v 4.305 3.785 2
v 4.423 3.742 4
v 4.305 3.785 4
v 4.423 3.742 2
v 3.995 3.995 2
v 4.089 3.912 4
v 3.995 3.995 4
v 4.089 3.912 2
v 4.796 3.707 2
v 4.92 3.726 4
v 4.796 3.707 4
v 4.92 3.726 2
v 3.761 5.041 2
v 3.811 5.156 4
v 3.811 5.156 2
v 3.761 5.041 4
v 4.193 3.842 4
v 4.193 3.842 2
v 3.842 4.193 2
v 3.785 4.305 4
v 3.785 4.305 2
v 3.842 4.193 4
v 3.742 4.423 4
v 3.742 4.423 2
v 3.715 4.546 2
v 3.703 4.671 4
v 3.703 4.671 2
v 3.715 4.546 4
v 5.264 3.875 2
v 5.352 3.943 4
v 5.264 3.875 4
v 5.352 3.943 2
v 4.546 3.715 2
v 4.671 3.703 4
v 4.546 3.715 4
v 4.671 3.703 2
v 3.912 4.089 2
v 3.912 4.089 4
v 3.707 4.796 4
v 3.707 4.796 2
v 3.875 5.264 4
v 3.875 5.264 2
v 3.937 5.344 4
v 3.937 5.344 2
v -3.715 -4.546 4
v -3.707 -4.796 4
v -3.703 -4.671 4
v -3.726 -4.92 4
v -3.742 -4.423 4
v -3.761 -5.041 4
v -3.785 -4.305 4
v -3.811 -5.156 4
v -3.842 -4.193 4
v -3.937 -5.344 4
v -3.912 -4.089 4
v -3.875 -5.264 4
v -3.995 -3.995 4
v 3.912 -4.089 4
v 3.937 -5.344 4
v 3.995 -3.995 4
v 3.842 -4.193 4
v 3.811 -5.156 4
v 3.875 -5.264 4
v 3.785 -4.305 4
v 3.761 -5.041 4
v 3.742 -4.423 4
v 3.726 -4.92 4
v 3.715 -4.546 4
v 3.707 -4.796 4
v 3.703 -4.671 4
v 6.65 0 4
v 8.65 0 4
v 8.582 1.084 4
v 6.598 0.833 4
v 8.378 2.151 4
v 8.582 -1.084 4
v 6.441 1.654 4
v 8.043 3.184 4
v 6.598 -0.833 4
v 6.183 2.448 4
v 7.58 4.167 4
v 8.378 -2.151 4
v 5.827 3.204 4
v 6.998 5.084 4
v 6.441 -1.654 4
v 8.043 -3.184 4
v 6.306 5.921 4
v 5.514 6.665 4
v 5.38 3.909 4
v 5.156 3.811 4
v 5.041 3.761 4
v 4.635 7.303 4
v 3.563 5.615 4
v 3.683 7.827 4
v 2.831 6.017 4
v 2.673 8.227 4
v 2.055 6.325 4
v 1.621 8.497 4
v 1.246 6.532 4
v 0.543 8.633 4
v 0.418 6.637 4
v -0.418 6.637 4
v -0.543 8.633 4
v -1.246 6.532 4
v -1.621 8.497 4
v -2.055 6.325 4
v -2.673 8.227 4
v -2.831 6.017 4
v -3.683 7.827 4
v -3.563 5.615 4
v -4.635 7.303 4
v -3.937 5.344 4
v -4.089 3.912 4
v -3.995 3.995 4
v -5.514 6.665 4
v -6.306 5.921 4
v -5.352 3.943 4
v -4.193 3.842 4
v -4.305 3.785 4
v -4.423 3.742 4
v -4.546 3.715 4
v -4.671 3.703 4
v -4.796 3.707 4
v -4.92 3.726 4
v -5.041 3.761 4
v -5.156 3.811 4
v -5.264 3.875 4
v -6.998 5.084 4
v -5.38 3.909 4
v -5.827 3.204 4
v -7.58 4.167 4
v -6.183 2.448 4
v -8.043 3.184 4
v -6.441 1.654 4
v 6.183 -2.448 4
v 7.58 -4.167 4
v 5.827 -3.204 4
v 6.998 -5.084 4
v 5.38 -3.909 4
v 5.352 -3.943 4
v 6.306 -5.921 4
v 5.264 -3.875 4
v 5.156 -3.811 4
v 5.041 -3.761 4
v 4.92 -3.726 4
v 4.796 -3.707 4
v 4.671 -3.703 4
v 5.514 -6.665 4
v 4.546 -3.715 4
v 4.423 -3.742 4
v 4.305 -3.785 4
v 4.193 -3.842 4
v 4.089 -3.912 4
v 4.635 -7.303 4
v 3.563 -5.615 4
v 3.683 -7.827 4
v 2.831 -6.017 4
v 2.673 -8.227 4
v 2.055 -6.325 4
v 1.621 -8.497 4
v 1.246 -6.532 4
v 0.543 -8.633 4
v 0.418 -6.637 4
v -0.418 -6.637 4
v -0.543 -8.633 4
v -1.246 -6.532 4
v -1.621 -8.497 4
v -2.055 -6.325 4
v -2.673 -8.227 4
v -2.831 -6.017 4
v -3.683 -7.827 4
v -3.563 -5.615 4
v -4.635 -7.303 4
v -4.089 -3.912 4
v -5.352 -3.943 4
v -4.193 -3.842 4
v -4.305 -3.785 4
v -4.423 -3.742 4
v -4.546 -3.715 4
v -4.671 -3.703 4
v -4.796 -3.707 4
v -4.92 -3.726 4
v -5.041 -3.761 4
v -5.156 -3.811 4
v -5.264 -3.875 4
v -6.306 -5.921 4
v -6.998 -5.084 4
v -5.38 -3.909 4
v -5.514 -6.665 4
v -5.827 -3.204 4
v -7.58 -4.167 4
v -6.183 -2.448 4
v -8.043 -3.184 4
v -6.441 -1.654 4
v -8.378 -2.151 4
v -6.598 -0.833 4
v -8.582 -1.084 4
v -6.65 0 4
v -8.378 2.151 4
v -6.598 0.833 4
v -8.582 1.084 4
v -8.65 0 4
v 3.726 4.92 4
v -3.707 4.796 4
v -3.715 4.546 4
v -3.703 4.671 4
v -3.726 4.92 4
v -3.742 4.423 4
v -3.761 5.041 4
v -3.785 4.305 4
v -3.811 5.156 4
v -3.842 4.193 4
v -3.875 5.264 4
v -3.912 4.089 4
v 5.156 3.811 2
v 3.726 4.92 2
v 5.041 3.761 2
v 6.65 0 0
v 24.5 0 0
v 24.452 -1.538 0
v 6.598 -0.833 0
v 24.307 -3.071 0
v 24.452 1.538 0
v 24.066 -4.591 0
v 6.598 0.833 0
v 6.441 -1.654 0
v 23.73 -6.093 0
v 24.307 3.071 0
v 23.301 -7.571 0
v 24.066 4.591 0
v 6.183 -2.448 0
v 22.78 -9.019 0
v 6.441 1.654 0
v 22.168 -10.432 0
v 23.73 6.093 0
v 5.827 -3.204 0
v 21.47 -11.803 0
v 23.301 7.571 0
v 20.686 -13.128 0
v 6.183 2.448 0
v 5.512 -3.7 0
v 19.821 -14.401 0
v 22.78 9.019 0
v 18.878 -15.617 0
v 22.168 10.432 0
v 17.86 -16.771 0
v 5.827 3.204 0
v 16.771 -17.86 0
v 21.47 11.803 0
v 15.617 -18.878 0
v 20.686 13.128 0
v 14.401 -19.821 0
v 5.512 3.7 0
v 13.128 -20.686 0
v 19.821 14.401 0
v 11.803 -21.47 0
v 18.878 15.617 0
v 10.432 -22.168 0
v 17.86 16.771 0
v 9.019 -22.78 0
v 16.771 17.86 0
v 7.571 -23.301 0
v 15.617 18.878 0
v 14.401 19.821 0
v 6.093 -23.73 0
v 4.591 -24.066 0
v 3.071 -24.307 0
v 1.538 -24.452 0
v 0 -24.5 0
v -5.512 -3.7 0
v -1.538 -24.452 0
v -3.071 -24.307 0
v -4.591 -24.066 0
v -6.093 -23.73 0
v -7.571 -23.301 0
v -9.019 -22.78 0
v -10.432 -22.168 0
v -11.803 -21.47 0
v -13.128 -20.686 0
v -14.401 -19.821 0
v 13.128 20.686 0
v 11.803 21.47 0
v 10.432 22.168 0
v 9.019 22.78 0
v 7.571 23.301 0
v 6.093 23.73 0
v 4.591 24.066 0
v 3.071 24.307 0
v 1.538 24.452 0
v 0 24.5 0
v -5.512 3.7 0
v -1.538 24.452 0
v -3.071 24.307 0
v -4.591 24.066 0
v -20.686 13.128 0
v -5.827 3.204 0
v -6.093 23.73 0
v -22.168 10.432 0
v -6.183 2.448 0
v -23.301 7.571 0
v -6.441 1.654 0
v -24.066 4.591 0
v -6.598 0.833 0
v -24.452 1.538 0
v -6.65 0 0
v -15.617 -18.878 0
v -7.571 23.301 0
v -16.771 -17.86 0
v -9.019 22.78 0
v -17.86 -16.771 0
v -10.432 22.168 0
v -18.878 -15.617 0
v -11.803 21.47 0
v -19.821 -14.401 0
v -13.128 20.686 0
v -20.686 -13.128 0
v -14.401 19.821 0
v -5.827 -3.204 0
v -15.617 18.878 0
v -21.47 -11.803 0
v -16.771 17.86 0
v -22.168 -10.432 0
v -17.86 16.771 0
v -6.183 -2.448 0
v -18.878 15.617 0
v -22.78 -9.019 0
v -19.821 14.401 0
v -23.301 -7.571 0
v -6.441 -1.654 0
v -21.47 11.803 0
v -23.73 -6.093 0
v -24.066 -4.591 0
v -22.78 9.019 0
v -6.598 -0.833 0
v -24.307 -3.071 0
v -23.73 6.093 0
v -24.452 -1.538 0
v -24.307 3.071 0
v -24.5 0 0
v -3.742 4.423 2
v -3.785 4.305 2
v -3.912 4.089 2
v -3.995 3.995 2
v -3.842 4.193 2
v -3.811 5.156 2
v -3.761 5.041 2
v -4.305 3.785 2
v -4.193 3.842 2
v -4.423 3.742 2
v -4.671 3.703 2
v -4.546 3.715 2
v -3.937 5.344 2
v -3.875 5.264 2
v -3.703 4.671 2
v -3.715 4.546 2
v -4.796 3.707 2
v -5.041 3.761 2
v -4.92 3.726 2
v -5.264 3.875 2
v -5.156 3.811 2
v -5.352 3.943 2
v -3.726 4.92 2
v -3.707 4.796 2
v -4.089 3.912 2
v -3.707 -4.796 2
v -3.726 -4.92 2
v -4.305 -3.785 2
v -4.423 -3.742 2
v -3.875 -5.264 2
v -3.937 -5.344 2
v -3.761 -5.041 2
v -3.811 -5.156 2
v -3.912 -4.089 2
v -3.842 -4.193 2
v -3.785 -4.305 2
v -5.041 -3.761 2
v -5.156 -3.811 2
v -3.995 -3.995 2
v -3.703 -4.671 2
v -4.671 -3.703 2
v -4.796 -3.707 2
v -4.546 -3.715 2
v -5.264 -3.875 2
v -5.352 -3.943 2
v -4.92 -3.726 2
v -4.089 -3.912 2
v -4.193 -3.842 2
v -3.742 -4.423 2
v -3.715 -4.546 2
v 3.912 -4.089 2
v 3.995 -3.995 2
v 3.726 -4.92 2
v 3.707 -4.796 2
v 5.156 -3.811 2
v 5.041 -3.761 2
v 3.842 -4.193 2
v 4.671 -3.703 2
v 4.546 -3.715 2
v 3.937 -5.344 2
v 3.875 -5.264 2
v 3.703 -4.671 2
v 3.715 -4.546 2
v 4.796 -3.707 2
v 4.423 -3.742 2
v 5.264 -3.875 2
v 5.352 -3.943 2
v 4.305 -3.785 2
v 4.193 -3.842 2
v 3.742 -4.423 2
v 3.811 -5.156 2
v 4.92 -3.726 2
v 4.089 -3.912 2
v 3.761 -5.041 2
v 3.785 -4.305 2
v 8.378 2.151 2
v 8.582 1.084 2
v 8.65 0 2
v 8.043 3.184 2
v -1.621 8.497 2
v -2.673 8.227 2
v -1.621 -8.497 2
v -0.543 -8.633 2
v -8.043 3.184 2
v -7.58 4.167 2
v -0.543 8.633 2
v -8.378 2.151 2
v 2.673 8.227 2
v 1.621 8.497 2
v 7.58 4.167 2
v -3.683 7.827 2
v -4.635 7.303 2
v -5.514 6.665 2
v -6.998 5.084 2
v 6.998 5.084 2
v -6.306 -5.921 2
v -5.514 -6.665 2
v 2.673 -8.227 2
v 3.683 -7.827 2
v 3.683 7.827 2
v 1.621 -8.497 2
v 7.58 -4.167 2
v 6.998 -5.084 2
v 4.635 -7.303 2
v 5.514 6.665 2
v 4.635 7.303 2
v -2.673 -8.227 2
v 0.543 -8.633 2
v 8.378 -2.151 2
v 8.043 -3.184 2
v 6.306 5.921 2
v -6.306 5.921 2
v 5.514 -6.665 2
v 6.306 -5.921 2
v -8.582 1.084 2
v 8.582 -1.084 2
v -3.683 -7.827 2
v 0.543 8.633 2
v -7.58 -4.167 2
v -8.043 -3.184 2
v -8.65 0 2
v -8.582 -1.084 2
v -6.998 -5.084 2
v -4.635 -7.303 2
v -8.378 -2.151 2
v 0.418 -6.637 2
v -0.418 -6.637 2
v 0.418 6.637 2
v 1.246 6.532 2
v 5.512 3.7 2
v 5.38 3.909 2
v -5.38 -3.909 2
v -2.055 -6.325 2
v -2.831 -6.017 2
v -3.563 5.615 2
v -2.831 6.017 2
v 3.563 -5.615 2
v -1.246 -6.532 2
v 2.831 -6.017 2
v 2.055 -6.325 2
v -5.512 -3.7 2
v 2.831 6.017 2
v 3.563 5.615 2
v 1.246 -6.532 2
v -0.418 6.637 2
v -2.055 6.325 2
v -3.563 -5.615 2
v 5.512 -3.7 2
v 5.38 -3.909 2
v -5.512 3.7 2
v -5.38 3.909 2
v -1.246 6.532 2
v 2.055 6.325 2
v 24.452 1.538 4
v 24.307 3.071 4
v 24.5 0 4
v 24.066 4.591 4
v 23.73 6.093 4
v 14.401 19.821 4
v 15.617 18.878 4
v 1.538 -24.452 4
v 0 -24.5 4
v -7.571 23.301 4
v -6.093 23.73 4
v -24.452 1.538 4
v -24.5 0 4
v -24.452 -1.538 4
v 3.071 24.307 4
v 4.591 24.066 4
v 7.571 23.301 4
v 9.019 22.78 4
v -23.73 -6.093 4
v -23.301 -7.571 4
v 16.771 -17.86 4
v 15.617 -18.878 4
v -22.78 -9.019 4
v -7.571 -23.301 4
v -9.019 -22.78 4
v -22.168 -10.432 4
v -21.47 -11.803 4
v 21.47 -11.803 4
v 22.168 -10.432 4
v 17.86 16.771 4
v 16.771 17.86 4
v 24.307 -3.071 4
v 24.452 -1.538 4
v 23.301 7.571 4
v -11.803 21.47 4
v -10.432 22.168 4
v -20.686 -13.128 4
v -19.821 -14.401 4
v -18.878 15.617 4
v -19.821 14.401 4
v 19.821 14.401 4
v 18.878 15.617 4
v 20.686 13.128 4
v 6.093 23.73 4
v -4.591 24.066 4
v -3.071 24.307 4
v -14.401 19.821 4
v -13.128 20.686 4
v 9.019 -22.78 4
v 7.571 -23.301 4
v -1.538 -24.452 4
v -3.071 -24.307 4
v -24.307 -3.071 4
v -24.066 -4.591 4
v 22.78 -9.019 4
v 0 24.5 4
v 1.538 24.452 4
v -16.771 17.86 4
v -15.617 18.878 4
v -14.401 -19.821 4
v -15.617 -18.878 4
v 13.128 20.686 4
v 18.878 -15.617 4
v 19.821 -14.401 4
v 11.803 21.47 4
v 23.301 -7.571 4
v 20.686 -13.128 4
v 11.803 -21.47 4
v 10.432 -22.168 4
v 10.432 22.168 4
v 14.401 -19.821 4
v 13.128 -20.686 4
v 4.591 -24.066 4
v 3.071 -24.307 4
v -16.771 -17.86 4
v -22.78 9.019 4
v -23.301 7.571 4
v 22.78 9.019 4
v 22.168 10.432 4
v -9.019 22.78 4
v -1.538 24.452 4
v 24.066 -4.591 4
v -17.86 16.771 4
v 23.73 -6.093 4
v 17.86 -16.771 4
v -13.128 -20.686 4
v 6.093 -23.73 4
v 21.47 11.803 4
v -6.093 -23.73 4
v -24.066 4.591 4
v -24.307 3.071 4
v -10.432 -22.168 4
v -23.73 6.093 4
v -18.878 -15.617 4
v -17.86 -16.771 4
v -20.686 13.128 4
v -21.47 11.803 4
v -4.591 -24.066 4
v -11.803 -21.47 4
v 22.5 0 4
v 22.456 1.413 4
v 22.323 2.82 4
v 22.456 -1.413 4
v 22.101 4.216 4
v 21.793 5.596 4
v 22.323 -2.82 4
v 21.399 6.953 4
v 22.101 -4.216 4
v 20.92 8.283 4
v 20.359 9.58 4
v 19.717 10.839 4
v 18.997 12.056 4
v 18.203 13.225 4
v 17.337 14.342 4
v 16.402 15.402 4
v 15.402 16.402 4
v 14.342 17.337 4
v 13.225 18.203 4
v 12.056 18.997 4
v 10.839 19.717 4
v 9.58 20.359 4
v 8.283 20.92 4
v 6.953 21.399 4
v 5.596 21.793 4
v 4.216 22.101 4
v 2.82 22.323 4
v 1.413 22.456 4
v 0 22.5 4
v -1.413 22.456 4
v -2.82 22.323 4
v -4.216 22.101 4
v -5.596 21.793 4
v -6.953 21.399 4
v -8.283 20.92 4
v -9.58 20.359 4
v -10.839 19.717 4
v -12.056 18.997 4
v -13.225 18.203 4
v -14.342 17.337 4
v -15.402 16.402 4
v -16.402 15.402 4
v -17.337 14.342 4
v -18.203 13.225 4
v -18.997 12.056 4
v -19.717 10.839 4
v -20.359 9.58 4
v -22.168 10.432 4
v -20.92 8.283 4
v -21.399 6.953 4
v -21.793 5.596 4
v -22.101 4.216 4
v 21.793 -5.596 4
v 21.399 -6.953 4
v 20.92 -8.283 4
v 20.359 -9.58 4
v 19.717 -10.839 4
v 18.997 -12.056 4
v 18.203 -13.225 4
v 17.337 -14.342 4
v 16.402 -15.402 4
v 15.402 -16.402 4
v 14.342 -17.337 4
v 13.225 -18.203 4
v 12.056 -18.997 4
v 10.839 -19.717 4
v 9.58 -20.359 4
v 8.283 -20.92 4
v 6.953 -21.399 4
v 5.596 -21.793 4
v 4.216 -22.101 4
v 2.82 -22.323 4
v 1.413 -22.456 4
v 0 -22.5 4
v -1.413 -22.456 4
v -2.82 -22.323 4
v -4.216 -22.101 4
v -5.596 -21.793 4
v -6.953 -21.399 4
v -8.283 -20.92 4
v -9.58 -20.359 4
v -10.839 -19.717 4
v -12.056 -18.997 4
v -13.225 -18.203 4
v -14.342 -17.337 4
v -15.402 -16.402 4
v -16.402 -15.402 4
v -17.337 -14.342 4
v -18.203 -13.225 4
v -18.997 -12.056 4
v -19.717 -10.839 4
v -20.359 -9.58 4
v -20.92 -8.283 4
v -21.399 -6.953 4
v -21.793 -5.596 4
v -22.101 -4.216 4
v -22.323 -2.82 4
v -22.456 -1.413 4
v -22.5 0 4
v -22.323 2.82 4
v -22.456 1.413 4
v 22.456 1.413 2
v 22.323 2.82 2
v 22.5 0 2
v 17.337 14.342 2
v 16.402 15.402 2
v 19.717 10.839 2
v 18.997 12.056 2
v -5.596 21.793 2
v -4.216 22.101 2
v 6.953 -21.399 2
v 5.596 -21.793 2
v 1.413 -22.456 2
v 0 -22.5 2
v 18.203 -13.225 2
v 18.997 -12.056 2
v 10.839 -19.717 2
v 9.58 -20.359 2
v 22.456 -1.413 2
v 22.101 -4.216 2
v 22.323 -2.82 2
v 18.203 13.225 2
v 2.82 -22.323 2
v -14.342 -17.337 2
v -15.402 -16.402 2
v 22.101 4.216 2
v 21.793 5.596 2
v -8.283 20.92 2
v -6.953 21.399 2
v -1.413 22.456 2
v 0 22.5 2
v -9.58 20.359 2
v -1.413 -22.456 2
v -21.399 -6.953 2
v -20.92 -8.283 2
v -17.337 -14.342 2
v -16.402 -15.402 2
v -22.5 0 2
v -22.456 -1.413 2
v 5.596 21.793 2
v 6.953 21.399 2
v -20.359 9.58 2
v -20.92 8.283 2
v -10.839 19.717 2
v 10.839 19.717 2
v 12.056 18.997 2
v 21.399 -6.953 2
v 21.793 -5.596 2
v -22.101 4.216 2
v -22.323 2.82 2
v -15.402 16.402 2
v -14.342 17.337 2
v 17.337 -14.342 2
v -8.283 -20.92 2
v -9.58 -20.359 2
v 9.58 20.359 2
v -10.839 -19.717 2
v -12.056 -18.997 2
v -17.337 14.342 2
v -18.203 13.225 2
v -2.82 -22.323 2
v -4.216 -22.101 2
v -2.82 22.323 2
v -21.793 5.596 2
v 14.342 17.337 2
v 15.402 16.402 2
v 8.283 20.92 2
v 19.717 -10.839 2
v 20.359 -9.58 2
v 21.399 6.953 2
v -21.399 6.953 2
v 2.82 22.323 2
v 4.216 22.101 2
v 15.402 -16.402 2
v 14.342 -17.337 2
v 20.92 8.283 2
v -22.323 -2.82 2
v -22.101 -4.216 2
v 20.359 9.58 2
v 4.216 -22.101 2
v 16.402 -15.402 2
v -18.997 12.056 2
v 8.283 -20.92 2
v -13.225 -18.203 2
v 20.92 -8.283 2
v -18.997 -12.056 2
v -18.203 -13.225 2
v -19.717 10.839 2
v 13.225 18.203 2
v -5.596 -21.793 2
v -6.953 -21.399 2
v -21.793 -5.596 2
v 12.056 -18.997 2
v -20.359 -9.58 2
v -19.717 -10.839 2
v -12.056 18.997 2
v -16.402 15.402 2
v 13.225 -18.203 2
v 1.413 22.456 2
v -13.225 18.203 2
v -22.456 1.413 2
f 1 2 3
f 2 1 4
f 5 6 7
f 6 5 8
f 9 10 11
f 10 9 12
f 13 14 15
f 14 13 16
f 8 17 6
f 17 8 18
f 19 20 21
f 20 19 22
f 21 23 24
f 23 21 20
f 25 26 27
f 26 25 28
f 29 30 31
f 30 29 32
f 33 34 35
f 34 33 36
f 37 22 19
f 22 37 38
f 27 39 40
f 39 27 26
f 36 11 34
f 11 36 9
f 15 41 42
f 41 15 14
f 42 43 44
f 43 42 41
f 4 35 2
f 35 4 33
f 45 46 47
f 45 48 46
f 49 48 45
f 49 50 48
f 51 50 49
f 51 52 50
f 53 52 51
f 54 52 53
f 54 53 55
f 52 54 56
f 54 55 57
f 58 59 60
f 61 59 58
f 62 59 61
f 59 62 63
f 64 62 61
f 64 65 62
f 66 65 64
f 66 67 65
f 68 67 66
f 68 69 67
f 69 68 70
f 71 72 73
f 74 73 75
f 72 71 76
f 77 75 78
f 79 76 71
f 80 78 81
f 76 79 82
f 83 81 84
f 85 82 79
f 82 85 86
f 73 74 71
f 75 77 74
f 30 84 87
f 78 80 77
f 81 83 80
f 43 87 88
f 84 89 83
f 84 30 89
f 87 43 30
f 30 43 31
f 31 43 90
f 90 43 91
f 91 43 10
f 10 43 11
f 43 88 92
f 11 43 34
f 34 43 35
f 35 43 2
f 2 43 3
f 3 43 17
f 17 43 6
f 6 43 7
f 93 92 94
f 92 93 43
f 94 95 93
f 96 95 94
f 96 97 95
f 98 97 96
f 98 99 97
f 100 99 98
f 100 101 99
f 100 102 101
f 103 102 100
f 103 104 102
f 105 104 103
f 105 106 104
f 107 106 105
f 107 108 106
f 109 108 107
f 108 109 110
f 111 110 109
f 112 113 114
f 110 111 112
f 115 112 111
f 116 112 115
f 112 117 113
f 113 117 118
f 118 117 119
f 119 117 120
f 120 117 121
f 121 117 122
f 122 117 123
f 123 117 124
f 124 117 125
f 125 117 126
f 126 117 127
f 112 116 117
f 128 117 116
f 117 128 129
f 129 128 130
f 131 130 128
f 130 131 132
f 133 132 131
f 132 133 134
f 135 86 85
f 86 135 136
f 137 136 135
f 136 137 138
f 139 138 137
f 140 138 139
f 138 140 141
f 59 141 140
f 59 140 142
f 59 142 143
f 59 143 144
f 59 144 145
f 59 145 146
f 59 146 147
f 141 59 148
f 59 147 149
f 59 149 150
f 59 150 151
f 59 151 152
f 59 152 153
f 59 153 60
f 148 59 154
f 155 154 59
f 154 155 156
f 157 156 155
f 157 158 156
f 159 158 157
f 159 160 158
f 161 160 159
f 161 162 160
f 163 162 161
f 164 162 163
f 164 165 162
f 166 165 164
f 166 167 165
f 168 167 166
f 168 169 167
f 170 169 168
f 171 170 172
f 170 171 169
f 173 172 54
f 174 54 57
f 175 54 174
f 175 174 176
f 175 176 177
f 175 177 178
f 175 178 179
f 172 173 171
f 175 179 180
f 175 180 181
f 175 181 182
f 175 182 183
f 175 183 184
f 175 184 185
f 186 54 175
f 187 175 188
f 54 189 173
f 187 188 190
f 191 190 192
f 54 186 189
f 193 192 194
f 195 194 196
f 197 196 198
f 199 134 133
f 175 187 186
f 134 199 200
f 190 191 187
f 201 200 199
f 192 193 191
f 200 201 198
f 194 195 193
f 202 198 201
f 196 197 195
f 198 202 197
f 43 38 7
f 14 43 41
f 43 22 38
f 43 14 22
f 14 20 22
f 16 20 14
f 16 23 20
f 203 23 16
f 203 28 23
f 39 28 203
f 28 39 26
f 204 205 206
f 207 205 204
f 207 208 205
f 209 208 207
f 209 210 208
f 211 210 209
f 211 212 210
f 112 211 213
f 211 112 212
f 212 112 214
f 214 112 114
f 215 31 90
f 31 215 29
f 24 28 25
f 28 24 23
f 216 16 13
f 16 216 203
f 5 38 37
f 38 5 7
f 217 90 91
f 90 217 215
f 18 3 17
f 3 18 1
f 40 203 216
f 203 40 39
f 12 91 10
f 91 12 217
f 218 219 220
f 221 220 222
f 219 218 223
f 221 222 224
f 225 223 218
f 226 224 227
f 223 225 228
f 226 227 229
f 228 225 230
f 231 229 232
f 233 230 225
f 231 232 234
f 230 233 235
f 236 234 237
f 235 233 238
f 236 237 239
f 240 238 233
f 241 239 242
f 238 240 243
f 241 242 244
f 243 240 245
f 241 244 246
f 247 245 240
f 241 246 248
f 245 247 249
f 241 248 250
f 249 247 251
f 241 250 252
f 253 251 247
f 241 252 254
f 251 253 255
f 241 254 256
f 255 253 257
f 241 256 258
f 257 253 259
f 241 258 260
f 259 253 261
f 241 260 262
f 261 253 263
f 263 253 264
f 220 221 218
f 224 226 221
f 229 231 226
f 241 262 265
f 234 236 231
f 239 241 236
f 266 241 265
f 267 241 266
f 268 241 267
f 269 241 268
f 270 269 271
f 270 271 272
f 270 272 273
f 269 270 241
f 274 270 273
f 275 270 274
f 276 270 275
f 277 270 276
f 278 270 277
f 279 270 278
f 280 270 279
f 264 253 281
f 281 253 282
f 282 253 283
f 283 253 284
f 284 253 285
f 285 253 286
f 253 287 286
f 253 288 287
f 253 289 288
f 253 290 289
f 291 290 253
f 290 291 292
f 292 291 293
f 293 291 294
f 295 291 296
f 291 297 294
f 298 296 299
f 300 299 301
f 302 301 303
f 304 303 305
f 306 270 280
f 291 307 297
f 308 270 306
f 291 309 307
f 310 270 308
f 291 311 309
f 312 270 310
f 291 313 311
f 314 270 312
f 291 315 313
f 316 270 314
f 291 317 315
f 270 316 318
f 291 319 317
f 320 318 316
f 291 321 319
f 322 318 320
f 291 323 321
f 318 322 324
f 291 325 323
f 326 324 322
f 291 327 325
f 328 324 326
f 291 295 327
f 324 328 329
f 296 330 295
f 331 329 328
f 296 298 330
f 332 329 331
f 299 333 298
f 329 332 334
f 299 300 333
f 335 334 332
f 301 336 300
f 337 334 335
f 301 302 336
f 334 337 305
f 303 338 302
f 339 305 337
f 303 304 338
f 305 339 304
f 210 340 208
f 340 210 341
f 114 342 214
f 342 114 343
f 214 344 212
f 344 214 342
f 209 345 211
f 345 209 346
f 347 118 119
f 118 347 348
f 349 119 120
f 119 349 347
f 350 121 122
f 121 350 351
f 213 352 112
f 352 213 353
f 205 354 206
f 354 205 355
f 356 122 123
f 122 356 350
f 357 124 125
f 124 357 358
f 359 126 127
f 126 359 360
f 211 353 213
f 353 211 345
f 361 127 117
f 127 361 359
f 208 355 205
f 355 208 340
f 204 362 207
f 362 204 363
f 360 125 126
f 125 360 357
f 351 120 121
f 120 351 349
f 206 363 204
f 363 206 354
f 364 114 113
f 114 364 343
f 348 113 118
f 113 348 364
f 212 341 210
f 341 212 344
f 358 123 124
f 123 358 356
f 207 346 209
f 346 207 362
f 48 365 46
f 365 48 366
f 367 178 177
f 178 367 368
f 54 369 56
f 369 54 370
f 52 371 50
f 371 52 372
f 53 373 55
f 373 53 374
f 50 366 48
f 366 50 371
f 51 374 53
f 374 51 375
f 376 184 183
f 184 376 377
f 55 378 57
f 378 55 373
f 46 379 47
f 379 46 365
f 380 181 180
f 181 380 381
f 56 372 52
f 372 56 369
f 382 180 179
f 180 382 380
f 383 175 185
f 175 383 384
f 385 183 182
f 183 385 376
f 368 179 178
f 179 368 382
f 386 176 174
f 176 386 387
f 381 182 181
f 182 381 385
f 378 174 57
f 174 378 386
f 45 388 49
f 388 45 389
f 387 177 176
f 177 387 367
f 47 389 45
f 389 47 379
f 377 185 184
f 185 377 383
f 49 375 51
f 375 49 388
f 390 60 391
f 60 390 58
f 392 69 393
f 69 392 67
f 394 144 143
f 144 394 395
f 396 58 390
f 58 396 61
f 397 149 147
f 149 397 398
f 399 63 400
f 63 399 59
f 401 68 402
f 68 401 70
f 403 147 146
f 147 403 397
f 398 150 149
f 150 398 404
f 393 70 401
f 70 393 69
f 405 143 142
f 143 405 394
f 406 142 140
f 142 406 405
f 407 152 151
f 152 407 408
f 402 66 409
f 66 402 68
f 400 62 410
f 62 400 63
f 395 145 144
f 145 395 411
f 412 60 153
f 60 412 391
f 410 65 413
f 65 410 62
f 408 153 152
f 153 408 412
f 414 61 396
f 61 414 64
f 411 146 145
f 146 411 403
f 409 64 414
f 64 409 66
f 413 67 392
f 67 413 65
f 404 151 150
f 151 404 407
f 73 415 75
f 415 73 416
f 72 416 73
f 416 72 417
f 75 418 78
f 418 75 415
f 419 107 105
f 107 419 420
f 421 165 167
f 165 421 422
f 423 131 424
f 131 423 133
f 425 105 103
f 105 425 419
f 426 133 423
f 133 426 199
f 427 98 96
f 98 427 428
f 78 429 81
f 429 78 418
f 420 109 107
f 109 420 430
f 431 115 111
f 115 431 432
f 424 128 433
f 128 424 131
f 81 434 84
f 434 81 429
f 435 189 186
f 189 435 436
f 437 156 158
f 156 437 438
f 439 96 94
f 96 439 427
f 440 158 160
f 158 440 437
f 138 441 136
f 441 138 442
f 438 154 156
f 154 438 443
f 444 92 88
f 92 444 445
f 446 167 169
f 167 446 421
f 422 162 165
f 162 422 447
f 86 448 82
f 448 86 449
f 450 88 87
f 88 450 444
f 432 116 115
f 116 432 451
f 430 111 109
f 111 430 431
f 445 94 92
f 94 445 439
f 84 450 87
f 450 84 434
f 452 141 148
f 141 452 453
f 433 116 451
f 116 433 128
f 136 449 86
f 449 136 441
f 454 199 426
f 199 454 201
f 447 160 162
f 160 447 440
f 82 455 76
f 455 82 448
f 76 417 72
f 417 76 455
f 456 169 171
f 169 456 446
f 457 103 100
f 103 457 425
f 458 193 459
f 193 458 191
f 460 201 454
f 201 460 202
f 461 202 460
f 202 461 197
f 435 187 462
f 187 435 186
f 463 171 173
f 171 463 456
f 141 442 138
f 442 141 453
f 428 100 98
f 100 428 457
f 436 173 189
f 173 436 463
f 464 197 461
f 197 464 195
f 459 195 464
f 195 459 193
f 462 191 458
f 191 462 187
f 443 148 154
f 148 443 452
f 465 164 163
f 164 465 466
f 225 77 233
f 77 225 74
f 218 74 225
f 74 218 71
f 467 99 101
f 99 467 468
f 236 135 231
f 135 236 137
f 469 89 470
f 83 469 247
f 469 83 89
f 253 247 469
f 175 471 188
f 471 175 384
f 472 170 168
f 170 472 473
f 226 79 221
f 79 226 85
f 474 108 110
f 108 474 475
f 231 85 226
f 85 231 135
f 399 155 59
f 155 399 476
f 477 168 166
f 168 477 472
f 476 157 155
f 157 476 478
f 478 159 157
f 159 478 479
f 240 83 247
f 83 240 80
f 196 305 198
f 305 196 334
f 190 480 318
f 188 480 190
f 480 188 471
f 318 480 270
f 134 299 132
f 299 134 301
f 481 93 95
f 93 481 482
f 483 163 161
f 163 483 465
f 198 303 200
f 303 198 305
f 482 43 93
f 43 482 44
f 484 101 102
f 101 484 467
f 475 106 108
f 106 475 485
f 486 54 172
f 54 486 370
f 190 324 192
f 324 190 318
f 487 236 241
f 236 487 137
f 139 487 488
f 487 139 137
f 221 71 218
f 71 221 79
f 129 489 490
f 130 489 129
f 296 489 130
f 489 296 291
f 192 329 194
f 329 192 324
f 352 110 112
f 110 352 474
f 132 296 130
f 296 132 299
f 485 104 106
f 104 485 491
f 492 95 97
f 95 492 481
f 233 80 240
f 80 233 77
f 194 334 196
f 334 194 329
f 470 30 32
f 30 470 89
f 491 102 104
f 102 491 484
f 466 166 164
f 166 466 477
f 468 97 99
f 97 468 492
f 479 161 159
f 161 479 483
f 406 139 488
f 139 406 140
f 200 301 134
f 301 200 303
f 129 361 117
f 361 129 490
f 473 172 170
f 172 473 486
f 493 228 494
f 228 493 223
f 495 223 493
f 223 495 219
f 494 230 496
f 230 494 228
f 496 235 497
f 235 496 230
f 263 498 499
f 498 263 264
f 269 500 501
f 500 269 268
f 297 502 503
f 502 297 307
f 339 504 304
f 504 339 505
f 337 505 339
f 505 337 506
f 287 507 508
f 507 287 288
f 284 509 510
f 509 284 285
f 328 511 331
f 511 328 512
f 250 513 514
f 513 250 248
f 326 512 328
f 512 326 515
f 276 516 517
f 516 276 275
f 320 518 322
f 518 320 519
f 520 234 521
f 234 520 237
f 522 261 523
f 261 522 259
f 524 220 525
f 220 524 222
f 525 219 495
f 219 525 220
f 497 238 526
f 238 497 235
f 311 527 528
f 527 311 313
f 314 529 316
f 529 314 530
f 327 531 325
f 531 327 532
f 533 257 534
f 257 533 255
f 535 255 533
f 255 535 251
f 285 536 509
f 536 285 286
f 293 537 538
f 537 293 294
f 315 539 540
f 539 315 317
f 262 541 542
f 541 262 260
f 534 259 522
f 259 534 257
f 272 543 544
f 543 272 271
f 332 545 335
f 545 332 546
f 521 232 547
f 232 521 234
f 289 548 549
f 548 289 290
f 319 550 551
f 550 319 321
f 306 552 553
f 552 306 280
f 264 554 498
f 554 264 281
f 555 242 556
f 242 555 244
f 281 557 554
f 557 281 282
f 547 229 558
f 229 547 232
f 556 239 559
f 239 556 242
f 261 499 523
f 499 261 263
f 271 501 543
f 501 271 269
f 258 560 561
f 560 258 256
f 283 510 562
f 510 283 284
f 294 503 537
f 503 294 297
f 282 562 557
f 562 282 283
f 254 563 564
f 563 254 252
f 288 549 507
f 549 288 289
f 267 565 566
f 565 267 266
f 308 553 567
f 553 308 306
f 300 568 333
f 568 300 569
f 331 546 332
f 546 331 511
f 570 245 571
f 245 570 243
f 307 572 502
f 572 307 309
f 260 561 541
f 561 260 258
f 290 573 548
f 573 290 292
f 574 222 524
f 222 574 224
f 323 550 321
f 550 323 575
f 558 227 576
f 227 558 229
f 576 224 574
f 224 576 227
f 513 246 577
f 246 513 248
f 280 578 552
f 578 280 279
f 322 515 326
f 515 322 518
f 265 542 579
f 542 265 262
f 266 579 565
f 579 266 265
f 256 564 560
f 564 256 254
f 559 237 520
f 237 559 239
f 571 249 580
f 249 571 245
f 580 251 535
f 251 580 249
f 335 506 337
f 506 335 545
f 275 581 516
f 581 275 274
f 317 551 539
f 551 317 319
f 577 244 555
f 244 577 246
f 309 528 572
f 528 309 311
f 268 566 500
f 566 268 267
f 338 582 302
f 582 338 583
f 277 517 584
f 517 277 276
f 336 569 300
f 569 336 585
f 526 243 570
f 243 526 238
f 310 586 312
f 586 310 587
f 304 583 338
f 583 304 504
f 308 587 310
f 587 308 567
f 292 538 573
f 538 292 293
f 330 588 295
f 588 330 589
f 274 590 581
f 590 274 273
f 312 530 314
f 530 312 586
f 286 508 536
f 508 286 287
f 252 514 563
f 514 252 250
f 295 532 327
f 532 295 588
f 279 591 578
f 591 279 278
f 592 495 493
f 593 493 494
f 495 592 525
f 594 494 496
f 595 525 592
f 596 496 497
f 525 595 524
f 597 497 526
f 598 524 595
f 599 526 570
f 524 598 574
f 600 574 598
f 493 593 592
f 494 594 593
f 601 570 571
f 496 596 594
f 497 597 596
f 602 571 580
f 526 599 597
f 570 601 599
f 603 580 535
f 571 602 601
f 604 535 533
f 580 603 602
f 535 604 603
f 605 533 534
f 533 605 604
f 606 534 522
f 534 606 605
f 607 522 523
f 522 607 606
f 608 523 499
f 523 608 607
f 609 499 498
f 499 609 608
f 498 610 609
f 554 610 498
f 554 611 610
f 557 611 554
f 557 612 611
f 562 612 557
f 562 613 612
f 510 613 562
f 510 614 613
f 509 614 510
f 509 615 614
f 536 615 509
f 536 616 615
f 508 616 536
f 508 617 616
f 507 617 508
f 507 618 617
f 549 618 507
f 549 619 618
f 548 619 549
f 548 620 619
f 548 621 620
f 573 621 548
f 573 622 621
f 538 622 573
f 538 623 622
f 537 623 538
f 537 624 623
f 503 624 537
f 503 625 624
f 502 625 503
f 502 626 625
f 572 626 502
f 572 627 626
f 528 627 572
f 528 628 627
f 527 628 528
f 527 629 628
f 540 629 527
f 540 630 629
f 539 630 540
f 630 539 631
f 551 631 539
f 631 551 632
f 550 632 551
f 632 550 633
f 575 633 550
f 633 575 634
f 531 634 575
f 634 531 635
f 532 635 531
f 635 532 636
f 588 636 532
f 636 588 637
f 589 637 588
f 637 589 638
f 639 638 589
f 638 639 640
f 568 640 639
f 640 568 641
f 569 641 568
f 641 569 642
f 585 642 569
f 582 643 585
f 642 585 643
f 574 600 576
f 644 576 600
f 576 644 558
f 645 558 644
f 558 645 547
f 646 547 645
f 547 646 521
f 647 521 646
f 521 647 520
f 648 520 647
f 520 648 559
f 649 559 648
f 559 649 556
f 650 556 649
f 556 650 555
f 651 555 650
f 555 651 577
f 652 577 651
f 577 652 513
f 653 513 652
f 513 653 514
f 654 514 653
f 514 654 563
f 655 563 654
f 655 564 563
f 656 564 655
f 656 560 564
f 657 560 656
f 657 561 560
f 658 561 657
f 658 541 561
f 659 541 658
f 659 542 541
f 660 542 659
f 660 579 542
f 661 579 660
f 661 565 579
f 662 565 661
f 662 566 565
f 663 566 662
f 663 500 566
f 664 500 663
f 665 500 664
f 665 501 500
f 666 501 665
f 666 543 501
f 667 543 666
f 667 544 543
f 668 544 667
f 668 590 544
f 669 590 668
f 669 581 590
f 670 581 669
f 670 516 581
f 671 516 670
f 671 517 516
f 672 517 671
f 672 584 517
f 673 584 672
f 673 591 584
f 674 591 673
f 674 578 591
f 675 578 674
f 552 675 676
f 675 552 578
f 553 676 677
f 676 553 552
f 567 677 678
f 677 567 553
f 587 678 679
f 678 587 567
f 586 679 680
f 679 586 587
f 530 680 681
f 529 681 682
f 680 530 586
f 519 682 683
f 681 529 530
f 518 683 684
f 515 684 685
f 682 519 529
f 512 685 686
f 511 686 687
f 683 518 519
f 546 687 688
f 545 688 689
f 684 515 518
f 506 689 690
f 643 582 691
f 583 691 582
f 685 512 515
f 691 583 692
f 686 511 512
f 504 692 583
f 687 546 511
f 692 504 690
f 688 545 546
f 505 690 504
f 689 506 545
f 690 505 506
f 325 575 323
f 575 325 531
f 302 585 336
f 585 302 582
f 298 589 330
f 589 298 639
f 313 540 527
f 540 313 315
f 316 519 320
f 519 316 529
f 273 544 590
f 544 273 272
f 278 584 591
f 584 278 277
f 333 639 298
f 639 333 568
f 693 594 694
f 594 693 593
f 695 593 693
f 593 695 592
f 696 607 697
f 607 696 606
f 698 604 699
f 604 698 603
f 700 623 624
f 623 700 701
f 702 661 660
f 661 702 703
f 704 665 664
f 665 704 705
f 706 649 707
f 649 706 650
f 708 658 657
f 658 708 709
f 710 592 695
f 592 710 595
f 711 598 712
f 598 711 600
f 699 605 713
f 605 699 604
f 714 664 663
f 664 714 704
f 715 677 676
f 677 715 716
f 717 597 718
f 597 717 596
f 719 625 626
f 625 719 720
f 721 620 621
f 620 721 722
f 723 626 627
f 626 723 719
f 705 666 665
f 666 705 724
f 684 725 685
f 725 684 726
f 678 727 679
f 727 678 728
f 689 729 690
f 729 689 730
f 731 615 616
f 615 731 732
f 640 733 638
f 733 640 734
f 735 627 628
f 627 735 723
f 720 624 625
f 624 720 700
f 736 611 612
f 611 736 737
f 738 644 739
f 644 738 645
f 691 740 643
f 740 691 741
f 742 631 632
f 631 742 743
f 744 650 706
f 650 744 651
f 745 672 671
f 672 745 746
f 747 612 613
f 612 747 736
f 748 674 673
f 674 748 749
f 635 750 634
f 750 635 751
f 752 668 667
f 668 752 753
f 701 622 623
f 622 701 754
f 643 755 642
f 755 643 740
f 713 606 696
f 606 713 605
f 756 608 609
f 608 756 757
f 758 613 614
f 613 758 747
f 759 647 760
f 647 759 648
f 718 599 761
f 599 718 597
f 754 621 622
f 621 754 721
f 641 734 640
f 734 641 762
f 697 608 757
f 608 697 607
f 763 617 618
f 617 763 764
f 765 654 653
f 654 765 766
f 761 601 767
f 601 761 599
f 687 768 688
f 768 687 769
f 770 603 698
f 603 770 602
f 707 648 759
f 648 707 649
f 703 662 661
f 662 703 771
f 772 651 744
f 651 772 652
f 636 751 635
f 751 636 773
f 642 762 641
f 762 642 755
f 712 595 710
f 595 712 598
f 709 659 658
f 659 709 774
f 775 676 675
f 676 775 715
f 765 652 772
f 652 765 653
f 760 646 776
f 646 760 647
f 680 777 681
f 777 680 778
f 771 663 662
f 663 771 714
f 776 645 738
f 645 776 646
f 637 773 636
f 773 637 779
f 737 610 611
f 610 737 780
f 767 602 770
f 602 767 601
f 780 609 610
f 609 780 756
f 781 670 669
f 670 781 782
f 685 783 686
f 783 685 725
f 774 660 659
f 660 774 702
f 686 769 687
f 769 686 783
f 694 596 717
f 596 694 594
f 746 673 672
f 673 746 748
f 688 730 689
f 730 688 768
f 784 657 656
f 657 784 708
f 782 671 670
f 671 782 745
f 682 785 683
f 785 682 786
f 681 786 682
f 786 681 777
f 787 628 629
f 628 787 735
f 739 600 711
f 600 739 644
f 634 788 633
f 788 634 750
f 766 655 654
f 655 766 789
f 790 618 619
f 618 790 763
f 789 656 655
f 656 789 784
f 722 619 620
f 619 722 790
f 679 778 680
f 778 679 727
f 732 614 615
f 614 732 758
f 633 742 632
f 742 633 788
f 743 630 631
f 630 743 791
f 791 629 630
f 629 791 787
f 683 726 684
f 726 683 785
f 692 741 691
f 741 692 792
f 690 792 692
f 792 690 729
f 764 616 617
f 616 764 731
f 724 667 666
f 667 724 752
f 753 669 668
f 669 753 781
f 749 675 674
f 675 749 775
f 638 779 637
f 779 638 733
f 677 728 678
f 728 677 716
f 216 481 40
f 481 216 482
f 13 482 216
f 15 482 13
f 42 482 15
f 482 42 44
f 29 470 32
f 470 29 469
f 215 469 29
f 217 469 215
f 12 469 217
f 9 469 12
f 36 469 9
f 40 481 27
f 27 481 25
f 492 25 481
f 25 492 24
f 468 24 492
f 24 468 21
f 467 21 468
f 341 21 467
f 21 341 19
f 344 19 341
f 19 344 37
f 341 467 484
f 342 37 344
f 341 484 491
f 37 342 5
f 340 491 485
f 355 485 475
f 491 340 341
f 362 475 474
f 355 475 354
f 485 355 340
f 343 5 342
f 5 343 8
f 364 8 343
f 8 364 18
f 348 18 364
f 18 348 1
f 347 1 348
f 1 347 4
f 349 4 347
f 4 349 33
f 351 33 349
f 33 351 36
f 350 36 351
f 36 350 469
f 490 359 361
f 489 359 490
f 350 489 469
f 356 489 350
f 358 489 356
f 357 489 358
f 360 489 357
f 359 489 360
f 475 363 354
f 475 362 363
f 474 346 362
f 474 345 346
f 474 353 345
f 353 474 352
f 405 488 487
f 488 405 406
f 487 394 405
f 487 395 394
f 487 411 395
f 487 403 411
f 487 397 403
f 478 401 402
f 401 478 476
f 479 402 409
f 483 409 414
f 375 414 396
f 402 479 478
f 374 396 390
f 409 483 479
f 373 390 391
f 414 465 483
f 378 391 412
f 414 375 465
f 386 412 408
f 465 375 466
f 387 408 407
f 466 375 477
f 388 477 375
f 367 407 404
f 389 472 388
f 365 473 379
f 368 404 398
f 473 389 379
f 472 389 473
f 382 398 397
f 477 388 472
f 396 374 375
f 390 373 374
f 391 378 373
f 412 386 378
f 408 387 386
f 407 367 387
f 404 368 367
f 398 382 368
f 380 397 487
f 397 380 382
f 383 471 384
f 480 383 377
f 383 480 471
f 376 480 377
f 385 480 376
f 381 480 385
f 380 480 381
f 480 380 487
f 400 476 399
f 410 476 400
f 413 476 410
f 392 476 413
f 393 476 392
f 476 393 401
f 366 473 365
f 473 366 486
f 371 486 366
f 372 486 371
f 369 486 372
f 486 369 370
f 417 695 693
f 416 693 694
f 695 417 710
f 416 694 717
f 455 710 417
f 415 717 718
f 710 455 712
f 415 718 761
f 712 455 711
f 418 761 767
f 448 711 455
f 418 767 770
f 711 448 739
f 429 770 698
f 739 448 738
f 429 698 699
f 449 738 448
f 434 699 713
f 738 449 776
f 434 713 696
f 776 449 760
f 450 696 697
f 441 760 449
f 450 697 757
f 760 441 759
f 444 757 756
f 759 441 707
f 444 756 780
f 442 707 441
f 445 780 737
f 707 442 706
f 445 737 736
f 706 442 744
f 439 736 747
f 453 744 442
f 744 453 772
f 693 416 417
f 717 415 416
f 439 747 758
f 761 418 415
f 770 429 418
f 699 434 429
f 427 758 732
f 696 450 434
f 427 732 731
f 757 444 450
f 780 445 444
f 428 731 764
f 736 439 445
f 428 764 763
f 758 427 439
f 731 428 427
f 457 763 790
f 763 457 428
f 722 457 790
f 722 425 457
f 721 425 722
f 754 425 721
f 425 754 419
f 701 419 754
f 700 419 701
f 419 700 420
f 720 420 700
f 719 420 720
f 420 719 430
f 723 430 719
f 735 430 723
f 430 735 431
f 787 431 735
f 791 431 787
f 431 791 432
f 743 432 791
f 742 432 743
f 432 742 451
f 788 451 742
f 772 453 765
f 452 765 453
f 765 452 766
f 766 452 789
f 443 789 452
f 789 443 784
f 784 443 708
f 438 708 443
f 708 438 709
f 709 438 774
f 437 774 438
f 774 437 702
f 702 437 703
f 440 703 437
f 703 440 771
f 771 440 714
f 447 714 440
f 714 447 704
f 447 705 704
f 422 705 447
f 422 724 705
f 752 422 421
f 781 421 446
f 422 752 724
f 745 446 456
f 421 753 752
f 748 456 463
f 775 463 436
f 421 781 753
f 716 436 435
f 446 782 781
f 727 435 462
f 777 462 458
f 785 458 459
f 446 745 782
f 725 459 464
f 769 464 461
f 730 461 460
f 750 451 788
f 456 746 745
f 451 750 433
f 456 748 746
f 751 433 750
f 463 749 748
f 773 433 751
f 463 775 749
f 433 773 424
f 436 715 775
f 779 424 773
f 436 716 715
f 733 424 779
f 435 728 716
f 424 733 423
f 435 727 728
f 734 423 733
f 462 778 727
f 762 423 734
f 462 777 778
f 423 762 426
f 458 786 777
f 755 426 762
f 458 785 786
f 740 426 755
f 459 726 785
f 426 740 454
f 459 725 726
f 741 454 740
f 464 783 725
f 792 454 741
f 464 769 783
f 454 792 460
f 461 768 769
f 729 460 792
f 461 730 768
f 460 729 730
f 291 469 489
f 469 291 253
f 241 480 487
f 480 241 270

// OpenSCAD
$fn=50;

outer_d=49;
inner_d=13.3;
ring_2w=4;
h1=2;
h2=4;

union() {
    difference() {
        // bottom
        union() {
            cylinder(d=outer_d, h=h1, $fn=100);

        }
        // mid hole
        cube([inner_d, 7.4, 2*h2+1], center=true);
    }
    
    // outer ring
    difference() {
            cylinder(d=outer_d, h=h2, $fn=100);
            cylinder(d=outer_d-ring_2w, h=h2+1, $fn=100);
    }
    
    // inner ring
    difference() {
            cylinder(d=inner_d+ring_2w, h=h2);
            cylinder(d=inner_d, h=h2+1);
    }
    
    // locks?
    for (rz=[45 : 90 : 360]) {
        rotate([0, 0, rz]) translate([inner_d/2, 0 ,0]) cylinder(d=2, h=h2);
    }
}
